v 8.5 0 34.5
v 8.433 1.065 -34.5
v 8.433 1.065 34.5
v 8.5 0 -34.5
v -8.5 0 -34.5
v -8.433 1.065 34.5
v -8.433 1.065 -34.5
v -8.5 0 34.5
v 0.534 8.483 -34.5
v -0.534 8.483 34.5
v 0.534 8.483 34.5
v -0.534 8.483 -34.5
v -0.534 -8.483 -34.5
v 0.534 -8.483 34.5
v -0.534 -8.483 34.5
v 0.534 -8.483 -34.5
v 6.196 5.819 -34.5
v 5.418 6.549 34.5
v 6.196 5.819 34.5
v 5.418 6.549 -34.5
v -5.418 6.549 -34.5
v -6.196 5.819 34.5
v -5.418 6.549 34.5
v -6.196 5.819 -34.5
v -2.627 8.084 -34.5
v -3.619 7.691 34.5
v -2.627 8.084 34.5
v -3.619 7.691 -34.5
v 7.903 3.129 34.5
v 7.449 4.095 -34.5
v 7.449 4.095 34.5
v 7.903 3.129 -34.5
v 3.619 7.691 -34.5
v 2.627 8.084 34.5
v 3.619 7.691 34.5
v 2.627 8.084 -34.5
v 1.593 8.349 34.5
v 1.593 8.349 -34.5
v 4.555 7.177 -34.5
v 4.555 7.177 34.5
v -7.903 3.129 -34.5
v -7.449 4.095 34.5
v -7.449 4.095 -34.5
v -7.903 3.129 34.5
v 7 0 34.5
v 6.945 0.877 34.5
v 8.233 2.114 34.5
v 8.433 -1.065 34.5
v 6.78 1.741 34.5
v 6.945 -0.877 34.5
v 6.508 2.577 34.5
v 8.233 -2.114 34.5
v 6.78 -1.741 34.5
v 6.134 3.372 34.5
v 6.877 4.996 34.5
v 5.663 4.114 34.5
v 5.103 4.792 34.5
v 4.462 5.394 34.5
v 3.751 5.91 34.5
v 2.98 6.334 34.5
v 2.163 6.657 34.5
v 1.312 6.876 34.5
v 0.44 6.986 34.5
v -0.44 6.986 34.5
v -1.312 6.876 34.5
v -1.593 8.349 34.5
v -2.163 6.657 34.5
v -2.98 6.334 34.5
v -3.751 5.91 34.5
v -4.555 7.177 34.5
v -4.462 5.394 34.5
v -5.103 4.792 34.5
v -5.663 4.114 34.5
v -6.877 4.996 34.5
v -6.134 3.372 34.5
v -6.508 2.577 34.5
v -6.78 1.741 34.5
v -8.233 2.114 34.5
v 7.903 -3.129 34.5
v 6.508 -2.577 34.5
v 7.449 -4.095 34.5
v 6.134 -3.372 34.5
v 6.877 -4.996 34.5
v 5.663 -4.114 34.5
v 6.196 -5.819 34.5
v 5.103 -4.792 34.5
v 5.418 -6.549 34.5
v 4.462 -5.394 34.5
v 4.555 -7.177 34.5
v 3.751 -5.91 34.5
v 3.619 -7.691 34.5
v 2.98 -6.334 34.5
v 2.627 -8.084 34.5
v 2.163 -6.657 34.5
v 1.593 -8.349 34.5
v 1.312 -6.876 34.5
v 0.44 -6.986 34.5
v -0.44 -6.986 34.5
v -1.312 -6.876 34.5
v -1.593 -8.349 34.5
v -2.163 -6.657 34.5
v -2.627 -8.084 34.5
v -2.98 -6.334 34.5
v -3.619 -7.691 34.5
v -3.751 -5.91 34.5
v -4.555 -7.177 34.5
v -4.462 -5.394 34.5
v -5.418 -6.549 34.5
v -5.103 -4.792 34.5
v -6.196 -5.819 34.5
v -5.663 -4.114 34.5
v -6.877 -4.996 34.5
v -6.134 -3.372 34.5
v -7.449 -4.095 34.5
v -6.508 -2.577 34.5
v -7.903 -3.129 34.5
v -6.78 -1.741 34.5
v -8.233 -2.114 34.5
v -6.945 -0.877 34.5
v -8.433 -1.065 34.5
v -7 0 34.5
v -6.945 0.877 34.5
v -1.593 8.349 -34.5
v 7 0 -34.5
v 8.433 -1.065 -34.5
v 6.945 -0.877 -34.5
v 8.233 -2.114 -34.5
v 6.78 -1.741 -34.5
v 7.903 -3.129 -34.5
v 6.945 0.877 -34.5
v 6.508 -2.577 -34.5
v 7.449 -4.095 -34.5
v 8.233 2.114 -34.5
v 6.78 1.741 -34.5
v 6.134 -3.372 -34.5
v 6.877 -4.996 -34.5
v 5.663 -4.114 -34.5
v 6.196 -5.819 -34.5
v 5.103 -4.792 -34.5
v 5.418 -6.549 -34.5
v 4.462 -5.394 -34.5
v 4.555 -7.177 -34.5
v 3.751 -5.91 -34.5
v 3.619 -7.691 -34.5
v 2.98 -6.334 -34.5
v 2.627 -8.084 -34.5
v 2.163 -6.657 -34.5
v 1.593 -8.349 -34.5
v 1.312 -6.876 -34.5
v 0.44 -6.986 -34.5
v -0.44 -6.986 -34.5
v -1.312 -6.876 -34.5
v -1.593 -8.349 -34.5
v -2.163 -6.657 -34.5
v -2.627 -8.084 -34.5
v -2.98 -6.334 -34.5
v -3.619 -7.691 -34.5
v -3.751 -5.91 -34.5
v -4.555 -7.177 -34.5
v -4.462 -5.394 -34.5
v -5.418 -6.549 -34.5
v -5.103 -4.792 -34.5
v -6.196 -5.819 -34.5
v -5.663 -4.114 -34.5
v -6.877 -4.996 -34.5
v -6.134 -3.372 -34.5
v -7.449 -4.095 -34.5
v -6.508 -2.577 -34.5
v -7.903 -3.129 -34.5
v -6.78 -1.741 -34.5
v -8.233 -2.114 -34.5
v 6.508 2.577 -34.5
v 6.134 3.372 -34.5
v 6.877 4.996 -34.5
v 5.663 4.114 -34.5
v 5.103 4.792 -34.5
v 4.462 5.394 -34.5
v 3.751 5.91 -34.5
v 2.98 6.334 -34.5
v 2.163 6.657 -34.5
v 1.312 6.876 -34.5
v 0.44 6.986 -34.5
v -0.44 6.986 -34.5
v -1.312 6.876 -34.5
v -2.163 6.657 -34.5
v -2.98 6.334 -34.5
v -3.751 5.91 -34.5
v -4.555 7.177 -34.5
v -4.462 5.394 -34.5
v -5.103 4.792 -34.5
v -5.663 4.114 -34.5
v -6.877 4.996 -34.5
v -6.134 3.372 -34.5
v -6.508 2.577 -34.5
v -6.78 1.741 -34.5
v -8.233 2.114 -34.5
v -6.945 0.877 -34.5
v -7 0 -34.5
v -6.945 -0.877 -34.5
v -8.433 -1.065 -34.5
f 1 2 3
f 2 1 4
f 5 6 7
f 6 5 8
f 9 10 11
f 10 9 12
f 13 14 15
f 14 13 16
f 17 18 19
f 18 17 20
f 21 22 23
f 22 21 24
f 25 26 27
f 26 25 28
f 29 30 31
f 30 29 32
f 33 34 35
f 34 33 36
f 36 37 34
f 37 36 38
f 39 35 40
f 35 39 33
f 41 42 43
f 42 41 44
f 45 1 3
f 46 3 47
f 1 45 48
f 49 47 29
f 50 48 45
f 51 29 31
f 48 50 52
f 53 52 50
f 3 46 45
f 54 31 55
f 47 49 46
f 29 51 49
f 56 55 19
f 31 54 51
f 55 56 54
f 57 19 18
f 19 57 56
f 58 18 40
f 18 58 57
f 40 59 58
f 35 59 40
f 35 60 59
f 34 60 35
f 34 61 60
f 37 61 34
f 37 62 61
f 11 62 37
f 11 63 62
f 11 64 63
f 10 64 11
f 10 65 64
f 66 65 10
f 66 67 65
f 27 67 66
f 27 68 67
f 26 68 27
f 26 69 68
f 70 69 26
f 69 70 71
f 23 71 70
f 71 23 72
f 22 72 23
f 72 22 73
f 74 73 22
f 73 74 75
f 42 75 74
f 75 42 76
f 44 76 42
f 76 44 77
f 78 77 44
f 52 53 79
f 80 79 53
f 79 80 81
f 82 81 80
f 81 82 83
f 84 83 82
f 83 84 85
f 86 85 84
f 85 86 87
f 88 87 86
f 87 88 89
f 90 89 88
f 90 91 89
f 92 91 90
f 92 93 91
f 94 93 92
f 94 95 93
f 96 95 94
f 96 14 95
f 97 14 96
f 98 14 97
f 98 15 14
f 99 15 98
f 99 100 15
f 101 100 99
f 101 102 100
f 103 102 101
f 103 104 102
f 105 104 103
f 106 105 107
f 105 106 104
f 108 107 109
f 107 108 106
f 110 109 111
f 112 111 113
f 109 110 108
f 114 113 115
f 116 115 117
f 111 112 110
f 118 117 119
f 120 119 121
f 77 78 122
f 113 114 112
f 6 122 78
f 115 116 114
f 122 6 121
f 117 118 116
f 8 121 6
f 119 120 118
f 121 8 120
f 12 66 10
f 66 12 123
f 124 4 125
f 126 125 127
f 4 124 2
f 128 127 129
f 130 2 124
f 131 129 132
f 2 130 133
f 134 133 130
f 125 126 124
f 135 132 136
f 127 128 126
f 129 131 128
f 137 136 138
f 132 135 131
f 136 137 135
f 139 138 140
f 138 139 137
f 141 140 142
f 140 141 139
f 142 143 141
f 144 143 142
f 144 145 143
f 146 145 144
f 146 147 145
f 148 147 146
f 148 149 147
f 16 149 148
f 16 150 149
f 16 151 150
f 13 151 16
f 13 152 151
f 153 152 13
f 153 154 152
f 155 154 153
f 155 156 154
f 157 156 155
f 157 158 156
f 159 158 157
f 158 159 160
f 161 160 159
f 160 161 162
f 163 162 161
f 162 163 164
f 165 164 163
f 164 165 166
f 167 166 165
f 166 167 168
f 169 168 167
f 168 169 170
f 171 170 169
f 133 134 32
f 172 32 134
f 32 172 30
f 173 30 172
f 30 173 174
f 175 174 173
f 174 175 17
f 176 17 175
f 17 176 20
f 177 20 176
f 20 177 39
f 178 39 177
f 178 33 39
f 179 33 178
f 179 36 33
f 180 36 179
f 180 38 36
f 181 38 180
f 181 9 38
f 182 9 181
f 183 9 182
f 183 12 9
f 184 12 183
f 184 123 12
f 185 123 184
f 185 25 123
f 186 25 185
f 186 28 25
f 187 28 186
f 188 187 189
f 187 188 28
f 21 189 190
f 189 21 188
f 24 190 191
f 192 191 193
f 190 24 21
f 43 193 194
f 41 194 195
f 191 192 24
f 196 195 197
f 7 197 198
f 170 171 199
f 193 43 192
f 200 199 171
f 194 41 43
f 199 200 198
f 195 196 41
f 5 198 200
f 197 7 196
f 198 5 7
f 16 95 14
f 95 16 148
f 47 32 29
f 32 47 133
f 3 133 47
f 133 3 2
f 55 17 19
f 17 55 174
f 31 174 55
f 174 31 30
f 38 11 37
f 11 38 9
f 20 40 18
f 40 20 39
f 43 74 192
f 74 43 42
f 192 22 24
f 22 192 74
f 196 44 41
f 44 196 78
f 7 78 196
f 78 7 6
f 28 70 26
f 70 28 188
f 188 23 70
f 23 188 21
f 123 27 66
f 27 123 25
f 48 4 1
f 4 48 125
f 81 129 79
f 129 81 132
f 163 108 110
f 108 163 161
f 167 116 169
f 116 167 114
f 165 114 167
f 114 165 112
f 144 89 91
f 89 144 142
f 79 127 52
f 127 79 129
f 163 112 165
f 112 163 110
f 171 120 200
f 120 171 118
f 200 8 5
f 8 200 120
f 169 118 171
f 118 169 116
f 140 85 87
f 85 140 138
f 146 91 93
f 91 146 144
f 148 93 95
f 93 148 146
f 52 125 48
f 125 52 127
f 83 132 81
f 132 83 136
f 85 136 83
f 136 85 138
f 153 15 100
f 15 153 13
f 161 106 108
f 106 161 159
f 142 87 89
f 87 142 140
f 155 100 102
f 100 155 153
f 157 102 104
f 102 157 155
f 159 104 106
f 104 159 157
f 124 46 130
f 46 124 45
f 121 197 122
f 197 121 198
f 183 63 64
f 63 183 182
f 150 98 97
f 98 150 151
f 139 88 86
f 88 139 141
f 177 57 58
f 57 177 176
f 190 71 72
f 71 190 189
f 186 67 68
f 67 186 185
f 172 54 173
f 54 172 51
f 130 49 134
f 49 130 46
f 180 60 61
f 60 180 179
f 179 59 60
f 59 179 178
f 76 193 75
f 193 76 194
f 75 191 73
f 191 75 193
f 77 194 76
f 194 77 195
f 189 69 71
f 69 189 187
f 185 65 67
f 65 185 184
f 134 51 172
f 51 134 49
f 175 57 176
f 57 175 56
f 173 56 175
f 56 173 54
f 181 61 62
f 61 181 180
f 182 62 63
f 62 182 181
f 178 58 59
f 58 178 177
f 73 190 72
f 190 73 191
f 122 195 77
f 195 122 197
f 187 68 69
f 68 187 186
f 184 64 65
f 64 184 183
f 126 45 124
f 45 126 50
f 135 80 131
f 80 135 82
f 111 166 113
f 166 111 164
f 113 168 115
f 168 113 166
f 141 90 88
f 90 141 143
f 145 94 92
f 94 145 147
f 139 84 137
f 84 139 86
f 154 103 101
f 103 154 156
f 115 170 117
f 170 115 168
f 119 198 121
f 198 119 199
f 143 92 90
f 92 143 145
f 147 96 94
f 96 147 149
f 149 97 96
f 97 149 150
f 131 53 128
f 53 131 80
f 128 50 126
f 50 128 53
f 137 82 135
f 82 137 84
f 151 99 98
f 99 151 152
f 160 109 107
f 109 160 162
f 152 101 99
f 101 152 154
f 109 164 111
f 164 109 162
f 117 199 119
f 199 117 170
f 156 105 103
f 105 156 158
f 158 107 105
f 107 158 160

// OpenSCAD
$fn = 50;


difference() {
	union() {
		translate(v = [0, 0, -34.5000000000]) {
			cylinder(h = 69, r = 8.5000000000);
		}
	}
	union() {
		translate(v = [0, 0, -100.0000000000]) {
			cylinder(h = 200, r = 7);
		}
	}
}
